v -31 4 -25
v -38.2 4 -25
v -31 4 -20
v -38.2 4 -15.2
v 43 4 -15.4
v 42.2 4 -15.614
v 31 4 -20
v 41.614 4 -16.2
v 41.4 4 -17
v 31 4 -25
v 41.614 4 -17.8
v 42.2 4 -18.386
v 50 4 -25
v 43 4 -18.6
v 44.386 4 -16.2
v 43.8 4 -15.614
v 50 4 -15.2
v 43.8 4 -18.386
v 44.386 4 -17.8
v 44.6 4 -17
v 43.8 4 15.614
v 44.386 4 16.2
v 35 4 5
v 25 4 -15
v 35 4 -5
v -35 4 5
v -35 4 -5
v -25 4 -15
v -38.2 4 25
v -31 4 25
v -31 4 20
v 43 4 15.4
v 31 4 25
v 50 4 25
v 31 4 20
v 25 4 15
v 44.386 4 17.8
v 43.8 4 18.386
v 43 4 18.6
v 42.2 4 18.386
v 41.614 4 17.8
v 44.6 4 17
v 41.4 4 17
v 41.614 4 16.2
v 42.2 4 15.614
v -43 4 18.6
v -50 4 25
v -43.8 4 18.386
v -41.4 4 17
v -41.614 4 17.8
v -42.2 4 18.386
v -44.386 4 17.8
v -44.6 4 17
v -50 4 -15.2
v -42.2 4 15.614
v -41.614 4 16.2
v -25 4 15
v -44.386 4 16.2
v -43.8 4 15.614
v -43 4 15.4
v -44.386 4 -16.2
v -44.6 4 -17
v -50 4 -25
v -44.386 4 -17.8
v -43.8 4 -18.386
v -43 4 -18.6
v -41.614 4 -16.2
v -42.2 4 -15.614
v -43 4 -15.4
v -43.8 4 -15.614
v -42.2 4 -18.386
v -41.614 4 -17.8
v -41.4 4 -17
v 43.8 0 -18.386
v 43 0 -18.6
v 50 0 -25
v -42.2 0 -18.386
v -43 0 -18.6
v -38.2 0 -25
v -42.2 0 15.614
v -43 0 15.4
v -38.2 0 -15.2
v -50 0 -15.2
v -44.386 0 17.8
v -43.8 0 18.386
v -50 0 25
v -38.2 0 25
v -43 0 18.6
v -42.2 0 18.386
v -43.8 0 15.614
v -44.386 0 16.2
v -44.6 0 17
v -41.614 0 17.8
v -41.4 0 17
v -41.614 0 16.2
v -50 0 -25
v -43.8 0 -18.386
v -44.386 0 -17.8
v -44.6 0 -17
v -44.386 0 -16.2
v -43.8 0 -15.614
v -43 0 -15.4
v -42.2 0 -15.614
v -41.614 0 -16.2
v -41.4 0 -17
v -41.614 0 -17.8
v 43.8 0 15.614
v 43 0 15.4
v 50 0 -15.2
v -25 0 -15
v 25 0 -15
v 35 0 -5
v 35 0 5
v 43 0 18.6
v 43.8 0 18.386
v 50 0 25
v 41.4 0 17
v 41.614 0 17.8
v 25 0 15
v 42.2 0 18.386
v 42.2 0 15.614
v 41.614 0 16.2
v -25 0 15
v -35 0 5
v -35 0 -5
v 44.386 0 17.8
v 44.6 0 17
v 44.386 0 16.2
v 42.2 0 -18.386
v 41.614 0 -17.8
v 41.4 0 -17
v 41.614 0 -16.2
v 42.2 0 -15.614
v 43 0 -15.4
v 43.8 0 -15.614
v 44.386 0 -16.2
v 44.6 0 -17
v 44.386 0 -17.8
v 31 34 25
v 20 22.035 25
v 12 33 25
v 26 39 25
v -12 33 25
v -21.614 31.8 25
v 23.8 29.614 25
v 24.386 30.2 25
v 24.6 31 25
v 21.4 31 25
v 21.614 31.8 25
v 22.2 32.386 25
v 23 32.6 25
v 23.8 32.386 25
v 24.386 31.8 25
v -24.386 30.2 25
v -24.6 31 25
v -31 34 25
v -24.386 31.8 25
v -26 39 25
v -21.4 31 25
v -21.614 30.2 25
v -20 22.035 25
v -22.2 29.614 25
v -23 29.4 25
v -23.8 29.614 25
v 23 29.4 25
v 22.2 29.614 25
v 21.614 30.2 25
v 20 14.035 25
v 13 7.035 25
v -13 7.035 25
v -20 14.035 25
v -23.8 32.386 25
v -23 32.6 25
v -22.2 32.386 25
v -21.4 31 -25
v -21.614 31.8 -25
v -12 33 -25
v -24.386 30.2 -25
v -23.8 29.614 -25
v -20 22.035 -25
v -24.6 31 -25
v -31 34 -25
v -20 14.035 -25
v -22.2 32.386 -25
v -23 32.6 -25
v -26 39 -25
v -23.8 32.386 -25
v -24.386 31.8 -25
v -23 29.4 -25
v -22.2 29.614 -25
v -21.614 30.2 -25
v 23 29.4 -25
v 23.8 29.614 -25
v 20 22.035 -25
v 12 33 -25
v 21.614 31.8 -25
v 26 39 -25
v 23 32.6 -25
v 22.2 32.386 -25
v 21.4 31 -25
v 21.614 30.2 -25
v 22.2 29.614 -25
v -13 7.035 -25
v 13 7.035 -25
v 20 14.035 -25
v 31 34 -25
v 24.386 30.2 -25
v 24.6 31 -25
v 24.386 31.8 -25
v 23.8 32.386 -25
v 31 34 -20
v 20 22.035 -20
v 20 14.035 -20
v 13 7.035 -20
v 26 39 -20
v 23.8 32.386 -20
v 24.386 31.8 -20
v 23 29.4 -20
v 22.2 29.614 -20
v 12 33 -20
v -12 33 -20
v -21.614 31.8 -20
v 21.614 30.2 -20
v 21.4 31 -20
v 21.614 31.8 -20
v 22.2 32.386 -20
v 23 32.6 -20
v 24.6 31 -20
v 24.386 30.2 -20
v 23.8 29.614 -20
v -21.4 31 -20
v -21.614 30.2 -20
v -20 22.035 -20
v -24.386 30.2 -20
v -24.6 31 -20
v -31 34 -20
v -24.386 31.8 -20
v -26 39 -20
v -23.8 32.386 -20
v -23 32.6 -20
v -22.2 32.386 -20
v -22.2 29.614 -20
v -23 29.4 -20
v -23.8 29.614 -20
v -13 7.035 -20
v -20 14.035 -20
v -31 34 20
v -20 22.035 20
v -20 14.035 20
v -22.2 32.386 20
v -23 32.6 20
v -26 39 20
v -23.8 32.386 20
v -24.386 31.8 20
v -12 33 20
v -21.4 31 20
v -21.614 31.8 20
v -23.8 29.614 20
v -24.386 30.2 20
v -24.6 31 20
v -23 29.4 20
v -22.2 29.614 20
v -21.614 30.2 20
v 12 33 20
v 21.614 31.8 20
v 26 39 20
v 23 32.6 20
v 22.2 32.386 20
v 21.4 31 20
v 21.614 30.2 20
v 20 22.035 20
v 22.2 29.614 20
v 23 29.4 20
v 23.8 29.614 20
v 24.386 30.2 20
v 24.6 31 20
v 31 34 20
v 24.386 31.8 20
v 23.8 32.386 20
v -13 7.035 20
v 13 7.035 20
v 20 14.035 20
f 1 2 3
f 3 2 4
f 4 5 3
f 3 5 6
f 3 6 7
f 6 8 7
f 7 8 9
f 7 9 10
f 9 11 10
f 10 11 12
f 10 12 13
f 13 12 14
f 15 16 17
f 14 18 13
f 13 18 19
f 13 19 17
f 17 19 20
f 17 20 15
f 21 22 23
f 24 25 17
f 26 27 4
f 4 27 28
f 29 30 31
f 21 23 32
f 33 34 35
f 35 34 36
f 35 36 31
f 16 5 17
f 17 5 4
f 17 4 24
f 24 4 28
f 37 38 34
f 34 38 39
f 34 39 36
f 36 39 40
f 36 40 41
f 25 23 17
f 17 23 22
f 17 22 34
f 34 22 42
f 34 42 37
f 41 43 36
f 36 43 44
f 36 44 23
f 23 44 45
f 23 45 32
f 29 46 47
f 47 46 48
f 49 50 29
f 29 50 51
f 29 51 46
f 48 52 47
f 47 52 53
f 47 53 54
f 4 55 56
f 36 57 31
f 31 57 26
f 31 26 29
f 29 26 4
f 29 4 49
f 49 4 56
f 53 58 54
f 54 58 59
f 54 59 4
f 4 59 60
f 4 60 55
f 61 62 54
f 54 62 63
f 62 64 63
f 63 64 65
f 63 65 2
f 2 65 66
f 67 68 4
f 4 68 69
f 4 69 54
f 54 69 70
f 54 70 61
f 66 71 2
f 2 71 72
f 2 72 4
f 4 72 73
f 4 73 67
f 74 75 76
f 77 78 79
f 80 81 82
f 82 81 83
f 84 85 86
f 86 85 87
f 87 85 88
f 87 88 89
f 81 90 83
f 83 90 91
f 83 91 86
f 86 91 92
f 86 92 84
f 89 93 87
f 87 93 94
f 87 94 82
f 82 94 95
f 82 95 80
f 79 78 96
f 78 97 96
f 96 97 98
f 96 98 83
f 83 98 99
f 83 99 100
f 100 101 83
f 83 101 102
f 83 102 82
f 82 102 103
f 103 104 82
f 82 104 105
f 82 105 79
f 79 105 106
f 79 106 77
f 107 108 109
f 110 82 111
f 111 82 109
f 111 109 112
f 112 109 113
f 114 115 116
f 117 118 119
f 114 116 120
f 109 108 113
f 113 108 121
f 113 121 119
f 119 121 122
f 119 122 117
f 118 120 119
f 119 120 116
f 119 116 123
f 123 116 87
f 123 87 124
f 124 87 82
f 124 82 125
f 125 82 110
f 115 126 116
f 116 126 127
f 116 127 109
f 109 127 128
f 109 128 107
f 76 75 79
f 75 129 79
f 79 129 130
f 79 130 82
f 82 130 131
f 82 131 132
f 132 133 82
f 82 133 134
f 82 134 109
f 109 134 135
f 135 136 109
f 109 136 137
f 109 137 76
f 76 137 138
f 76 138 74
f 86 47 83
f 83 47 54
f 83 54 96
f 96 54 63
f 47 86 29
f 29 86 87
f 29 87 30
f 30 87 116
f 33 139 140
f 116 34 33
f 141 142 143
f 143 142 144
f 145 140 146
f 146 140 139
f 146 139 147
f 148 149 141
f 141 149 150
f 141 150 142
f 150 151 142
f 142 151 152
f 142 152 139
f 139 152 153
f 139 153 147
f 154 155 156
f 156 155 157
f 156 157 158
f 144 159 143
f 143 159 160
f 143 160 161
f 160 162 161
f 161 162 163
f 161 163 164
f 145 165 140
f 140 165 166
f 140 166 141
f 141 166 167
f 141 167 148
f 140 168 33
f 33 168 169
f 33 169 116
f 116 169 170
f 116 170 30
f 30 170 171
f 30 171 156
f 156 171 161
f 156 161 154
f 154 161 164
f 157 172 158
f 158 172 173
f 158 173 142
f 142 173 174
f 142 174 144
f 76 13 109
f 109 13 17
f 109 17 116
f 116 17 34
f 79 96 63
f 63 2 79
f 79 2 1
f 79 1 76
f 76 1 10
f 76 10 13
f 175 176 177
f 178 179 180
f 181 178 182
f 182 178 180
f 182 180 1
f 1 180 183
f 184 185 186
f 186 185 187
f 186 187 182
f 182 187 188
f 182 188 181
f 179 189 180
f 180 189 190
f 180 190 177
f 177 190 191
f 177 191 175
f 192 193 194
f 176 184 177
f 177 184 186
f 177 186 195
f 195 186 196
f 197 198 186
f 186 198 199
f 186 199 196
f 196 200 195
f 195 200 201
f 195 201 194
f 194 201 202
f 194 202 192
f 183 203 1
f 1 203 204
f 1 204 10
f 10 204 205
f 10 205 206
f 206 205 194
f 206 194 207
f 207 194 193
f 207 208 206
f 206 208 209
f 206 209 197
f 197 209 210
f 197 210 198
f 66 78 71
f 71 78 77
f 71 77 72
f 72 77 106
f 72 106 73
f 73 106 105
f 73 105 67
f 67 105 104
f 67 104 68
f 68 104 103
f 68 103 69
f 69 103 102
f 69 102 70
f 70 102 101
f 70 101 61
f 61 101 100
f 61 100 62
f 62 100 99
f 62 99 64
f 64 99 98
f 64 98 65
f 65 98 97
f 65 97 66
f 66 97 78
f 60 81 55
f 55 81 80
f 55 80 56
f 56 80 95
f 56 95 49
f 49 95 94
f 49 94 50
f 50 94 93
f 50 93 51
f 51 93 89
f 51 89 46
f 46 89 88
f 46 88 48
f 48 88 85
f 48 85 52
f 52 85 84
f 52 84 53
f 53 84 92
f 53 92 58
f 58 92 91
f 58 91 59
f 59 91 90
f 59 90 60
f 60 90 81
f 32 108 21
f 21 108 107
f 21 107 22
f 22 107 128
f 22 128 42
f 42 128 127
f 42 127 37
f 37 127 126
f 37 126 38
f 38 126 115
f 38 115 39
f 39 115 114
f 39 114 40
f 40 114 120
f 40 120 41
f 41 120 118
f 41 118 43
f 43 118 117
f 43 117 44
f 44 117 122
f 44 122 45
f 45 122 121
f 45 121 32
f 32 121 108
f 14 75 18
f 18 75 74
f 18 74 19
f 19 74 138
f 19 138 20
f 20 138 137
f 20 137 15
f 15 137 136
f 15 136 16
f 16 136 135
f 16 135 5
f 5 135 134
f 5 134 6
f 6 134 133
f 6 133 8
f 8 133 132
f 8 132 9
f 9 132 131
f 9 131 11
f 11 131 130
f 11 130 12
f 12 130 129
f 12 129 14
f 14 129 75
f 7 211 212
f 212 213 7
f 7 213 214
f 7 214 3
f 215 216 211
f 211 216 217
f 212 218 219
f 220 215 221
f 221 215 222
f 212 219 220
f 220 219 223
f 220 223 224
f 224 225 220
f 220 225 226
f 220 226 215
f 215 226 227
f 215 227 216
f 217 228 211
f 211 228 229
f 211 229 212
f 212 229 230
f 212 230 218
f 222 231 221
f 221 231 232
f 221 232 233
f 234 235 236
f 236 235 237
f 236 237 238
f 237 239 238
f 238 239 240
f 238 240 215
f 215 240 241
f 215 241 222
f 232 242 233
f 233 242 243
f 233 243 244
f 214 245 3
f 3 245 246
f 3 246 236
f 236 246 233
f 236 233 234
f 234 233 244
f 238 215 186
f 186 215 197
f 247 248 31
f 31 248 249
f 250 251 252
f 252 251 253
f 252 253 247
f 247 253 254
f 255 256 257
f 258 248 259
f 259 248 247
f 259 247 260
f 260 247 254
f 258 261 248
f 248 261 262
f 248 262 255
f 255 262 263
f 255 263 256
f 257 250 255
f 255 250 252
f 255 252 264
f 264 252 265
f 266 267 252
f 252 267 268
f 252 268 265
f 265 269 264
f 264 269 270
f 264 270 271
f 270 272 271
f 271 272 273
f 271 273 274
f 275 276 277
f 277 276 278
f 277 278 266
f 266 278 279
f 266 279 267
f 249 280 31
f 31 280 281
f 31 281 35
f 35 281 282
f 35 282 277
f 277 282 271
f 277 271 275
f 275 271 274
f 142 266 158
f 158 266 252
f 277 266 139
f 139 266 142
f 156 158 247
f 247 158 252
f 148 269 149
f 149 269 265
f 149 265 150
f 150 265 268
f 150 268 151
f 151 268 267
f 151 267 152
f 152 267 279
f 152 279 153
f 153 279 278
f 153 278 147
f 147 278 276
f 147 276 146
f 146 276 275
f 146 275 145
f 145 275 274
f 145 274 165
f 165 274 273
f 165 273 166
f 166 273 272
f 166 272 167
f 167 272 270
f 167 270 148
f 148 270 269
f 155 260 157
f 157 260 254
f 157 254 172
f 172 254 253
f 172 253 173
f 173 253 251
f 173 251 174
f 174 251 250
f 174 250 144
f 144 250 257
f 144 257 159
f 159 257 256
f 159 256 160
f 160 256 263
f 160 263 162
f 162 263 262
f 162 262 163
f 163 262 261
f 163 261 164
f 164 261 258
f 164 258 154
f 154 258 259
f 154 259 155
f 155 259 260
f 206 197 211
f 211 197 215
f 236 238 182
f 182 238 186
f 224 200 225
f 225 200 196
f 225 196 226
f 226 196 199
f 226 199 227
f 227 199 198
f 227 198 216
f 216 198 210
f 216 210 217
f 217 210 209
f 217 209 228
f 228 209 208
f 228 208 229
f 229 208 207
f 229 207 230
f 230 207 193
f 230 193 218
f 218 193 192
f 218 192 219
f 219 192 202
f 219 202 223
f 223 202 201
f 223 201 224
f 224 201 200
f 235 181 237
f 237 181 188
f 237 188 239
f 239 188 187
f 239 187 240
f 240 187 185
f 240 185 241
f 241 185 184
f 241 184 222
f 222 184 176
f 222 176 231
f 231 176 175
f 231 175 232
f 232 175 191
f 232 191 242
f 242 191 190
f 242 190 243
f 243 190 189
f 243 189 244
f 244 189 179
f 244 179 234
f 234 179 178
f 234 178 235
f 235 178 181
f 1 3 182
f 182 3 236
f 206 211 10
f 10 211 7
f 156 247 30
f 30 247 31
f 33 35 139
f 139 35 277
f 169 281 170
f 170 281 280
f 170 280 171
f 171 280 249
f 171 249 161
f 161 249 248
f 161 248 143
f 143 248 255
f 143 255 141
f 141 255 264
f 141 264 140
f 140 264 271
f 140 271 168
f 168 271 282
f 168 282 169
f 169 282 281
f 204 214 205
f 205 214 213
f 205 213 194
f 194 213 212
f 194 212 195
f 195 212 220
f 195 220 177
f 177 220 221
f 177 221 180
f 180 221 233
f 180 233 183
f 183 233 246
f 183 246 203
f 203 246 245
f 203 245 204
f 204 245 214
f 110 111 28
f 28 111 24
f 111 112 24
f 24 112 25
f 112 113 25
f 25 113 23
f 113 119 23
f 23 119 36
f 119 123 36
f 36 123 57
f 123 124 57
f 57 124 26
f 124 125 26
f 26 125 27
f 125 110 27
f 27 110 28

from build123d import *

# Parameters (mm, degrees)
SKETCH_1_W          = 100
SKETCH_1_H          = 50
SKETCH_1_R          = 1.6
EXTRUDE_1_DEPTH     = 4
SKETCH_2_W          = 72
SKETCH_2_H          = 5
EXTRUDE_2_DEPTH     = 35
SKETCH_3_R          = 1.6
CUT_EXTRUDE_1_DEPTH = 51
CUT_EXTRUDE_2_DEPTH = 51
CUT_EXTRUDE_3_DEPTH = 5


with BuildPart() as part:
    # 草图1 → 凸台-拉伸1 (new body)
    with BuildSketch(Plane(origin=(0, 0, 0), x_dir=(1, 0, 0), z_dir=(0, 1, 0))):
        Rectangle(SKETCH_1_W, SKETCH_1_H)
        with Locations((-43, 17)):
            Circle(SKETCH_1_R, mode=Mode.SUBTRACT)
        with Locations((-43, -17)):
            Circle(SKETCH_1_R, mode=Mode.SUBTRACT)
        with Locations((43, -17)):
            Circle(SKETCH_1_R, mode=Mode.SUBTRACT)
        with Locations((43, 17)):
            Circle(SKETCH_1_R, mode=Mode.SUBTRACT)
    extrude(amount=EXTRUDE_1_DEPTH)

    # 草图2 → 凸台-拉伸2 (add)
    with BuildSketch(Plane(origin=(0, 4, 0), x_dir=(1, 0, 0), z_dir=(0, 1, 0))):
        with Locations((0, 22.5)):
            Rectangle(SKETCH_2_W, SKETCH_2_H)
        with Locations((0, -22.5)):
            Rectangle(SKETCH_2_W, SKETCH_2_H)
    extrude(amount=EXTRUDE_2_DEPTH)

    # 草图3 → 切除-拉伸1 (cut, through all)
    with BuildSketch(Plane(origin=(0, 0, -25), x_dir=(-1, 0, 0), z_dir=(0, 0, -1))):
        with Locations((-23, 31)):
            Circle(SKETCH_3_R)
        with Locations((23, 31)):
            Circle(SKETCH_3_R)
        Polygon((-26, 39), (-36, 29), (-36, 39), align=None)
        Polygon((36, 39), (26, 39), (36, 29), align=None)
    extrude(amount=-CUT_EXTRUDE_1_DEPTH, mode=Mode.SUBTRACT)

    # 草图4 → 切除-拉伸2 (cut, through all)
    with BuildSketch(Plane(origin=(0, 0, -25), x_dir=(-1, 0, 0), z_dir=(0, 0, -1))):
        Polygon((12, 33), (-12, 33), (-20, 22.035391732), (-20, 14.035391732), (-13, 7.035391732), (13, 7.035391732), (20, 14.035391732), (20, 22.035391732), align=None)
        Polygon((-36, 4), (-31, 4), (-31, 34), (-36, 29), align=None)
        Polygon((31, 34), (36, 29), (36, 4), (31, 4), align=None)
    extrude(amount=-CUT_EXTRUDE_2_DEPTH, mode=Mode.SUBTRACT)

    # 草图5 → 切除-拉伸3 (cut, through all)
    with BuildSketch(Plane(origin=(0, 4, 0), x_dir=(1, 0, 0), z_dir=(0, 1, 0))):
        Polygon((-25, 15), (-35, 5), (-35, -5), (-25, -15), (25, -15), (35, -5), (35, 5), (25, 15), align=None)
    extrude(amount=-CUT_EXTRUDE_3_DEPTH, mode=Mode.SUBTRACT)


solid = part.part
